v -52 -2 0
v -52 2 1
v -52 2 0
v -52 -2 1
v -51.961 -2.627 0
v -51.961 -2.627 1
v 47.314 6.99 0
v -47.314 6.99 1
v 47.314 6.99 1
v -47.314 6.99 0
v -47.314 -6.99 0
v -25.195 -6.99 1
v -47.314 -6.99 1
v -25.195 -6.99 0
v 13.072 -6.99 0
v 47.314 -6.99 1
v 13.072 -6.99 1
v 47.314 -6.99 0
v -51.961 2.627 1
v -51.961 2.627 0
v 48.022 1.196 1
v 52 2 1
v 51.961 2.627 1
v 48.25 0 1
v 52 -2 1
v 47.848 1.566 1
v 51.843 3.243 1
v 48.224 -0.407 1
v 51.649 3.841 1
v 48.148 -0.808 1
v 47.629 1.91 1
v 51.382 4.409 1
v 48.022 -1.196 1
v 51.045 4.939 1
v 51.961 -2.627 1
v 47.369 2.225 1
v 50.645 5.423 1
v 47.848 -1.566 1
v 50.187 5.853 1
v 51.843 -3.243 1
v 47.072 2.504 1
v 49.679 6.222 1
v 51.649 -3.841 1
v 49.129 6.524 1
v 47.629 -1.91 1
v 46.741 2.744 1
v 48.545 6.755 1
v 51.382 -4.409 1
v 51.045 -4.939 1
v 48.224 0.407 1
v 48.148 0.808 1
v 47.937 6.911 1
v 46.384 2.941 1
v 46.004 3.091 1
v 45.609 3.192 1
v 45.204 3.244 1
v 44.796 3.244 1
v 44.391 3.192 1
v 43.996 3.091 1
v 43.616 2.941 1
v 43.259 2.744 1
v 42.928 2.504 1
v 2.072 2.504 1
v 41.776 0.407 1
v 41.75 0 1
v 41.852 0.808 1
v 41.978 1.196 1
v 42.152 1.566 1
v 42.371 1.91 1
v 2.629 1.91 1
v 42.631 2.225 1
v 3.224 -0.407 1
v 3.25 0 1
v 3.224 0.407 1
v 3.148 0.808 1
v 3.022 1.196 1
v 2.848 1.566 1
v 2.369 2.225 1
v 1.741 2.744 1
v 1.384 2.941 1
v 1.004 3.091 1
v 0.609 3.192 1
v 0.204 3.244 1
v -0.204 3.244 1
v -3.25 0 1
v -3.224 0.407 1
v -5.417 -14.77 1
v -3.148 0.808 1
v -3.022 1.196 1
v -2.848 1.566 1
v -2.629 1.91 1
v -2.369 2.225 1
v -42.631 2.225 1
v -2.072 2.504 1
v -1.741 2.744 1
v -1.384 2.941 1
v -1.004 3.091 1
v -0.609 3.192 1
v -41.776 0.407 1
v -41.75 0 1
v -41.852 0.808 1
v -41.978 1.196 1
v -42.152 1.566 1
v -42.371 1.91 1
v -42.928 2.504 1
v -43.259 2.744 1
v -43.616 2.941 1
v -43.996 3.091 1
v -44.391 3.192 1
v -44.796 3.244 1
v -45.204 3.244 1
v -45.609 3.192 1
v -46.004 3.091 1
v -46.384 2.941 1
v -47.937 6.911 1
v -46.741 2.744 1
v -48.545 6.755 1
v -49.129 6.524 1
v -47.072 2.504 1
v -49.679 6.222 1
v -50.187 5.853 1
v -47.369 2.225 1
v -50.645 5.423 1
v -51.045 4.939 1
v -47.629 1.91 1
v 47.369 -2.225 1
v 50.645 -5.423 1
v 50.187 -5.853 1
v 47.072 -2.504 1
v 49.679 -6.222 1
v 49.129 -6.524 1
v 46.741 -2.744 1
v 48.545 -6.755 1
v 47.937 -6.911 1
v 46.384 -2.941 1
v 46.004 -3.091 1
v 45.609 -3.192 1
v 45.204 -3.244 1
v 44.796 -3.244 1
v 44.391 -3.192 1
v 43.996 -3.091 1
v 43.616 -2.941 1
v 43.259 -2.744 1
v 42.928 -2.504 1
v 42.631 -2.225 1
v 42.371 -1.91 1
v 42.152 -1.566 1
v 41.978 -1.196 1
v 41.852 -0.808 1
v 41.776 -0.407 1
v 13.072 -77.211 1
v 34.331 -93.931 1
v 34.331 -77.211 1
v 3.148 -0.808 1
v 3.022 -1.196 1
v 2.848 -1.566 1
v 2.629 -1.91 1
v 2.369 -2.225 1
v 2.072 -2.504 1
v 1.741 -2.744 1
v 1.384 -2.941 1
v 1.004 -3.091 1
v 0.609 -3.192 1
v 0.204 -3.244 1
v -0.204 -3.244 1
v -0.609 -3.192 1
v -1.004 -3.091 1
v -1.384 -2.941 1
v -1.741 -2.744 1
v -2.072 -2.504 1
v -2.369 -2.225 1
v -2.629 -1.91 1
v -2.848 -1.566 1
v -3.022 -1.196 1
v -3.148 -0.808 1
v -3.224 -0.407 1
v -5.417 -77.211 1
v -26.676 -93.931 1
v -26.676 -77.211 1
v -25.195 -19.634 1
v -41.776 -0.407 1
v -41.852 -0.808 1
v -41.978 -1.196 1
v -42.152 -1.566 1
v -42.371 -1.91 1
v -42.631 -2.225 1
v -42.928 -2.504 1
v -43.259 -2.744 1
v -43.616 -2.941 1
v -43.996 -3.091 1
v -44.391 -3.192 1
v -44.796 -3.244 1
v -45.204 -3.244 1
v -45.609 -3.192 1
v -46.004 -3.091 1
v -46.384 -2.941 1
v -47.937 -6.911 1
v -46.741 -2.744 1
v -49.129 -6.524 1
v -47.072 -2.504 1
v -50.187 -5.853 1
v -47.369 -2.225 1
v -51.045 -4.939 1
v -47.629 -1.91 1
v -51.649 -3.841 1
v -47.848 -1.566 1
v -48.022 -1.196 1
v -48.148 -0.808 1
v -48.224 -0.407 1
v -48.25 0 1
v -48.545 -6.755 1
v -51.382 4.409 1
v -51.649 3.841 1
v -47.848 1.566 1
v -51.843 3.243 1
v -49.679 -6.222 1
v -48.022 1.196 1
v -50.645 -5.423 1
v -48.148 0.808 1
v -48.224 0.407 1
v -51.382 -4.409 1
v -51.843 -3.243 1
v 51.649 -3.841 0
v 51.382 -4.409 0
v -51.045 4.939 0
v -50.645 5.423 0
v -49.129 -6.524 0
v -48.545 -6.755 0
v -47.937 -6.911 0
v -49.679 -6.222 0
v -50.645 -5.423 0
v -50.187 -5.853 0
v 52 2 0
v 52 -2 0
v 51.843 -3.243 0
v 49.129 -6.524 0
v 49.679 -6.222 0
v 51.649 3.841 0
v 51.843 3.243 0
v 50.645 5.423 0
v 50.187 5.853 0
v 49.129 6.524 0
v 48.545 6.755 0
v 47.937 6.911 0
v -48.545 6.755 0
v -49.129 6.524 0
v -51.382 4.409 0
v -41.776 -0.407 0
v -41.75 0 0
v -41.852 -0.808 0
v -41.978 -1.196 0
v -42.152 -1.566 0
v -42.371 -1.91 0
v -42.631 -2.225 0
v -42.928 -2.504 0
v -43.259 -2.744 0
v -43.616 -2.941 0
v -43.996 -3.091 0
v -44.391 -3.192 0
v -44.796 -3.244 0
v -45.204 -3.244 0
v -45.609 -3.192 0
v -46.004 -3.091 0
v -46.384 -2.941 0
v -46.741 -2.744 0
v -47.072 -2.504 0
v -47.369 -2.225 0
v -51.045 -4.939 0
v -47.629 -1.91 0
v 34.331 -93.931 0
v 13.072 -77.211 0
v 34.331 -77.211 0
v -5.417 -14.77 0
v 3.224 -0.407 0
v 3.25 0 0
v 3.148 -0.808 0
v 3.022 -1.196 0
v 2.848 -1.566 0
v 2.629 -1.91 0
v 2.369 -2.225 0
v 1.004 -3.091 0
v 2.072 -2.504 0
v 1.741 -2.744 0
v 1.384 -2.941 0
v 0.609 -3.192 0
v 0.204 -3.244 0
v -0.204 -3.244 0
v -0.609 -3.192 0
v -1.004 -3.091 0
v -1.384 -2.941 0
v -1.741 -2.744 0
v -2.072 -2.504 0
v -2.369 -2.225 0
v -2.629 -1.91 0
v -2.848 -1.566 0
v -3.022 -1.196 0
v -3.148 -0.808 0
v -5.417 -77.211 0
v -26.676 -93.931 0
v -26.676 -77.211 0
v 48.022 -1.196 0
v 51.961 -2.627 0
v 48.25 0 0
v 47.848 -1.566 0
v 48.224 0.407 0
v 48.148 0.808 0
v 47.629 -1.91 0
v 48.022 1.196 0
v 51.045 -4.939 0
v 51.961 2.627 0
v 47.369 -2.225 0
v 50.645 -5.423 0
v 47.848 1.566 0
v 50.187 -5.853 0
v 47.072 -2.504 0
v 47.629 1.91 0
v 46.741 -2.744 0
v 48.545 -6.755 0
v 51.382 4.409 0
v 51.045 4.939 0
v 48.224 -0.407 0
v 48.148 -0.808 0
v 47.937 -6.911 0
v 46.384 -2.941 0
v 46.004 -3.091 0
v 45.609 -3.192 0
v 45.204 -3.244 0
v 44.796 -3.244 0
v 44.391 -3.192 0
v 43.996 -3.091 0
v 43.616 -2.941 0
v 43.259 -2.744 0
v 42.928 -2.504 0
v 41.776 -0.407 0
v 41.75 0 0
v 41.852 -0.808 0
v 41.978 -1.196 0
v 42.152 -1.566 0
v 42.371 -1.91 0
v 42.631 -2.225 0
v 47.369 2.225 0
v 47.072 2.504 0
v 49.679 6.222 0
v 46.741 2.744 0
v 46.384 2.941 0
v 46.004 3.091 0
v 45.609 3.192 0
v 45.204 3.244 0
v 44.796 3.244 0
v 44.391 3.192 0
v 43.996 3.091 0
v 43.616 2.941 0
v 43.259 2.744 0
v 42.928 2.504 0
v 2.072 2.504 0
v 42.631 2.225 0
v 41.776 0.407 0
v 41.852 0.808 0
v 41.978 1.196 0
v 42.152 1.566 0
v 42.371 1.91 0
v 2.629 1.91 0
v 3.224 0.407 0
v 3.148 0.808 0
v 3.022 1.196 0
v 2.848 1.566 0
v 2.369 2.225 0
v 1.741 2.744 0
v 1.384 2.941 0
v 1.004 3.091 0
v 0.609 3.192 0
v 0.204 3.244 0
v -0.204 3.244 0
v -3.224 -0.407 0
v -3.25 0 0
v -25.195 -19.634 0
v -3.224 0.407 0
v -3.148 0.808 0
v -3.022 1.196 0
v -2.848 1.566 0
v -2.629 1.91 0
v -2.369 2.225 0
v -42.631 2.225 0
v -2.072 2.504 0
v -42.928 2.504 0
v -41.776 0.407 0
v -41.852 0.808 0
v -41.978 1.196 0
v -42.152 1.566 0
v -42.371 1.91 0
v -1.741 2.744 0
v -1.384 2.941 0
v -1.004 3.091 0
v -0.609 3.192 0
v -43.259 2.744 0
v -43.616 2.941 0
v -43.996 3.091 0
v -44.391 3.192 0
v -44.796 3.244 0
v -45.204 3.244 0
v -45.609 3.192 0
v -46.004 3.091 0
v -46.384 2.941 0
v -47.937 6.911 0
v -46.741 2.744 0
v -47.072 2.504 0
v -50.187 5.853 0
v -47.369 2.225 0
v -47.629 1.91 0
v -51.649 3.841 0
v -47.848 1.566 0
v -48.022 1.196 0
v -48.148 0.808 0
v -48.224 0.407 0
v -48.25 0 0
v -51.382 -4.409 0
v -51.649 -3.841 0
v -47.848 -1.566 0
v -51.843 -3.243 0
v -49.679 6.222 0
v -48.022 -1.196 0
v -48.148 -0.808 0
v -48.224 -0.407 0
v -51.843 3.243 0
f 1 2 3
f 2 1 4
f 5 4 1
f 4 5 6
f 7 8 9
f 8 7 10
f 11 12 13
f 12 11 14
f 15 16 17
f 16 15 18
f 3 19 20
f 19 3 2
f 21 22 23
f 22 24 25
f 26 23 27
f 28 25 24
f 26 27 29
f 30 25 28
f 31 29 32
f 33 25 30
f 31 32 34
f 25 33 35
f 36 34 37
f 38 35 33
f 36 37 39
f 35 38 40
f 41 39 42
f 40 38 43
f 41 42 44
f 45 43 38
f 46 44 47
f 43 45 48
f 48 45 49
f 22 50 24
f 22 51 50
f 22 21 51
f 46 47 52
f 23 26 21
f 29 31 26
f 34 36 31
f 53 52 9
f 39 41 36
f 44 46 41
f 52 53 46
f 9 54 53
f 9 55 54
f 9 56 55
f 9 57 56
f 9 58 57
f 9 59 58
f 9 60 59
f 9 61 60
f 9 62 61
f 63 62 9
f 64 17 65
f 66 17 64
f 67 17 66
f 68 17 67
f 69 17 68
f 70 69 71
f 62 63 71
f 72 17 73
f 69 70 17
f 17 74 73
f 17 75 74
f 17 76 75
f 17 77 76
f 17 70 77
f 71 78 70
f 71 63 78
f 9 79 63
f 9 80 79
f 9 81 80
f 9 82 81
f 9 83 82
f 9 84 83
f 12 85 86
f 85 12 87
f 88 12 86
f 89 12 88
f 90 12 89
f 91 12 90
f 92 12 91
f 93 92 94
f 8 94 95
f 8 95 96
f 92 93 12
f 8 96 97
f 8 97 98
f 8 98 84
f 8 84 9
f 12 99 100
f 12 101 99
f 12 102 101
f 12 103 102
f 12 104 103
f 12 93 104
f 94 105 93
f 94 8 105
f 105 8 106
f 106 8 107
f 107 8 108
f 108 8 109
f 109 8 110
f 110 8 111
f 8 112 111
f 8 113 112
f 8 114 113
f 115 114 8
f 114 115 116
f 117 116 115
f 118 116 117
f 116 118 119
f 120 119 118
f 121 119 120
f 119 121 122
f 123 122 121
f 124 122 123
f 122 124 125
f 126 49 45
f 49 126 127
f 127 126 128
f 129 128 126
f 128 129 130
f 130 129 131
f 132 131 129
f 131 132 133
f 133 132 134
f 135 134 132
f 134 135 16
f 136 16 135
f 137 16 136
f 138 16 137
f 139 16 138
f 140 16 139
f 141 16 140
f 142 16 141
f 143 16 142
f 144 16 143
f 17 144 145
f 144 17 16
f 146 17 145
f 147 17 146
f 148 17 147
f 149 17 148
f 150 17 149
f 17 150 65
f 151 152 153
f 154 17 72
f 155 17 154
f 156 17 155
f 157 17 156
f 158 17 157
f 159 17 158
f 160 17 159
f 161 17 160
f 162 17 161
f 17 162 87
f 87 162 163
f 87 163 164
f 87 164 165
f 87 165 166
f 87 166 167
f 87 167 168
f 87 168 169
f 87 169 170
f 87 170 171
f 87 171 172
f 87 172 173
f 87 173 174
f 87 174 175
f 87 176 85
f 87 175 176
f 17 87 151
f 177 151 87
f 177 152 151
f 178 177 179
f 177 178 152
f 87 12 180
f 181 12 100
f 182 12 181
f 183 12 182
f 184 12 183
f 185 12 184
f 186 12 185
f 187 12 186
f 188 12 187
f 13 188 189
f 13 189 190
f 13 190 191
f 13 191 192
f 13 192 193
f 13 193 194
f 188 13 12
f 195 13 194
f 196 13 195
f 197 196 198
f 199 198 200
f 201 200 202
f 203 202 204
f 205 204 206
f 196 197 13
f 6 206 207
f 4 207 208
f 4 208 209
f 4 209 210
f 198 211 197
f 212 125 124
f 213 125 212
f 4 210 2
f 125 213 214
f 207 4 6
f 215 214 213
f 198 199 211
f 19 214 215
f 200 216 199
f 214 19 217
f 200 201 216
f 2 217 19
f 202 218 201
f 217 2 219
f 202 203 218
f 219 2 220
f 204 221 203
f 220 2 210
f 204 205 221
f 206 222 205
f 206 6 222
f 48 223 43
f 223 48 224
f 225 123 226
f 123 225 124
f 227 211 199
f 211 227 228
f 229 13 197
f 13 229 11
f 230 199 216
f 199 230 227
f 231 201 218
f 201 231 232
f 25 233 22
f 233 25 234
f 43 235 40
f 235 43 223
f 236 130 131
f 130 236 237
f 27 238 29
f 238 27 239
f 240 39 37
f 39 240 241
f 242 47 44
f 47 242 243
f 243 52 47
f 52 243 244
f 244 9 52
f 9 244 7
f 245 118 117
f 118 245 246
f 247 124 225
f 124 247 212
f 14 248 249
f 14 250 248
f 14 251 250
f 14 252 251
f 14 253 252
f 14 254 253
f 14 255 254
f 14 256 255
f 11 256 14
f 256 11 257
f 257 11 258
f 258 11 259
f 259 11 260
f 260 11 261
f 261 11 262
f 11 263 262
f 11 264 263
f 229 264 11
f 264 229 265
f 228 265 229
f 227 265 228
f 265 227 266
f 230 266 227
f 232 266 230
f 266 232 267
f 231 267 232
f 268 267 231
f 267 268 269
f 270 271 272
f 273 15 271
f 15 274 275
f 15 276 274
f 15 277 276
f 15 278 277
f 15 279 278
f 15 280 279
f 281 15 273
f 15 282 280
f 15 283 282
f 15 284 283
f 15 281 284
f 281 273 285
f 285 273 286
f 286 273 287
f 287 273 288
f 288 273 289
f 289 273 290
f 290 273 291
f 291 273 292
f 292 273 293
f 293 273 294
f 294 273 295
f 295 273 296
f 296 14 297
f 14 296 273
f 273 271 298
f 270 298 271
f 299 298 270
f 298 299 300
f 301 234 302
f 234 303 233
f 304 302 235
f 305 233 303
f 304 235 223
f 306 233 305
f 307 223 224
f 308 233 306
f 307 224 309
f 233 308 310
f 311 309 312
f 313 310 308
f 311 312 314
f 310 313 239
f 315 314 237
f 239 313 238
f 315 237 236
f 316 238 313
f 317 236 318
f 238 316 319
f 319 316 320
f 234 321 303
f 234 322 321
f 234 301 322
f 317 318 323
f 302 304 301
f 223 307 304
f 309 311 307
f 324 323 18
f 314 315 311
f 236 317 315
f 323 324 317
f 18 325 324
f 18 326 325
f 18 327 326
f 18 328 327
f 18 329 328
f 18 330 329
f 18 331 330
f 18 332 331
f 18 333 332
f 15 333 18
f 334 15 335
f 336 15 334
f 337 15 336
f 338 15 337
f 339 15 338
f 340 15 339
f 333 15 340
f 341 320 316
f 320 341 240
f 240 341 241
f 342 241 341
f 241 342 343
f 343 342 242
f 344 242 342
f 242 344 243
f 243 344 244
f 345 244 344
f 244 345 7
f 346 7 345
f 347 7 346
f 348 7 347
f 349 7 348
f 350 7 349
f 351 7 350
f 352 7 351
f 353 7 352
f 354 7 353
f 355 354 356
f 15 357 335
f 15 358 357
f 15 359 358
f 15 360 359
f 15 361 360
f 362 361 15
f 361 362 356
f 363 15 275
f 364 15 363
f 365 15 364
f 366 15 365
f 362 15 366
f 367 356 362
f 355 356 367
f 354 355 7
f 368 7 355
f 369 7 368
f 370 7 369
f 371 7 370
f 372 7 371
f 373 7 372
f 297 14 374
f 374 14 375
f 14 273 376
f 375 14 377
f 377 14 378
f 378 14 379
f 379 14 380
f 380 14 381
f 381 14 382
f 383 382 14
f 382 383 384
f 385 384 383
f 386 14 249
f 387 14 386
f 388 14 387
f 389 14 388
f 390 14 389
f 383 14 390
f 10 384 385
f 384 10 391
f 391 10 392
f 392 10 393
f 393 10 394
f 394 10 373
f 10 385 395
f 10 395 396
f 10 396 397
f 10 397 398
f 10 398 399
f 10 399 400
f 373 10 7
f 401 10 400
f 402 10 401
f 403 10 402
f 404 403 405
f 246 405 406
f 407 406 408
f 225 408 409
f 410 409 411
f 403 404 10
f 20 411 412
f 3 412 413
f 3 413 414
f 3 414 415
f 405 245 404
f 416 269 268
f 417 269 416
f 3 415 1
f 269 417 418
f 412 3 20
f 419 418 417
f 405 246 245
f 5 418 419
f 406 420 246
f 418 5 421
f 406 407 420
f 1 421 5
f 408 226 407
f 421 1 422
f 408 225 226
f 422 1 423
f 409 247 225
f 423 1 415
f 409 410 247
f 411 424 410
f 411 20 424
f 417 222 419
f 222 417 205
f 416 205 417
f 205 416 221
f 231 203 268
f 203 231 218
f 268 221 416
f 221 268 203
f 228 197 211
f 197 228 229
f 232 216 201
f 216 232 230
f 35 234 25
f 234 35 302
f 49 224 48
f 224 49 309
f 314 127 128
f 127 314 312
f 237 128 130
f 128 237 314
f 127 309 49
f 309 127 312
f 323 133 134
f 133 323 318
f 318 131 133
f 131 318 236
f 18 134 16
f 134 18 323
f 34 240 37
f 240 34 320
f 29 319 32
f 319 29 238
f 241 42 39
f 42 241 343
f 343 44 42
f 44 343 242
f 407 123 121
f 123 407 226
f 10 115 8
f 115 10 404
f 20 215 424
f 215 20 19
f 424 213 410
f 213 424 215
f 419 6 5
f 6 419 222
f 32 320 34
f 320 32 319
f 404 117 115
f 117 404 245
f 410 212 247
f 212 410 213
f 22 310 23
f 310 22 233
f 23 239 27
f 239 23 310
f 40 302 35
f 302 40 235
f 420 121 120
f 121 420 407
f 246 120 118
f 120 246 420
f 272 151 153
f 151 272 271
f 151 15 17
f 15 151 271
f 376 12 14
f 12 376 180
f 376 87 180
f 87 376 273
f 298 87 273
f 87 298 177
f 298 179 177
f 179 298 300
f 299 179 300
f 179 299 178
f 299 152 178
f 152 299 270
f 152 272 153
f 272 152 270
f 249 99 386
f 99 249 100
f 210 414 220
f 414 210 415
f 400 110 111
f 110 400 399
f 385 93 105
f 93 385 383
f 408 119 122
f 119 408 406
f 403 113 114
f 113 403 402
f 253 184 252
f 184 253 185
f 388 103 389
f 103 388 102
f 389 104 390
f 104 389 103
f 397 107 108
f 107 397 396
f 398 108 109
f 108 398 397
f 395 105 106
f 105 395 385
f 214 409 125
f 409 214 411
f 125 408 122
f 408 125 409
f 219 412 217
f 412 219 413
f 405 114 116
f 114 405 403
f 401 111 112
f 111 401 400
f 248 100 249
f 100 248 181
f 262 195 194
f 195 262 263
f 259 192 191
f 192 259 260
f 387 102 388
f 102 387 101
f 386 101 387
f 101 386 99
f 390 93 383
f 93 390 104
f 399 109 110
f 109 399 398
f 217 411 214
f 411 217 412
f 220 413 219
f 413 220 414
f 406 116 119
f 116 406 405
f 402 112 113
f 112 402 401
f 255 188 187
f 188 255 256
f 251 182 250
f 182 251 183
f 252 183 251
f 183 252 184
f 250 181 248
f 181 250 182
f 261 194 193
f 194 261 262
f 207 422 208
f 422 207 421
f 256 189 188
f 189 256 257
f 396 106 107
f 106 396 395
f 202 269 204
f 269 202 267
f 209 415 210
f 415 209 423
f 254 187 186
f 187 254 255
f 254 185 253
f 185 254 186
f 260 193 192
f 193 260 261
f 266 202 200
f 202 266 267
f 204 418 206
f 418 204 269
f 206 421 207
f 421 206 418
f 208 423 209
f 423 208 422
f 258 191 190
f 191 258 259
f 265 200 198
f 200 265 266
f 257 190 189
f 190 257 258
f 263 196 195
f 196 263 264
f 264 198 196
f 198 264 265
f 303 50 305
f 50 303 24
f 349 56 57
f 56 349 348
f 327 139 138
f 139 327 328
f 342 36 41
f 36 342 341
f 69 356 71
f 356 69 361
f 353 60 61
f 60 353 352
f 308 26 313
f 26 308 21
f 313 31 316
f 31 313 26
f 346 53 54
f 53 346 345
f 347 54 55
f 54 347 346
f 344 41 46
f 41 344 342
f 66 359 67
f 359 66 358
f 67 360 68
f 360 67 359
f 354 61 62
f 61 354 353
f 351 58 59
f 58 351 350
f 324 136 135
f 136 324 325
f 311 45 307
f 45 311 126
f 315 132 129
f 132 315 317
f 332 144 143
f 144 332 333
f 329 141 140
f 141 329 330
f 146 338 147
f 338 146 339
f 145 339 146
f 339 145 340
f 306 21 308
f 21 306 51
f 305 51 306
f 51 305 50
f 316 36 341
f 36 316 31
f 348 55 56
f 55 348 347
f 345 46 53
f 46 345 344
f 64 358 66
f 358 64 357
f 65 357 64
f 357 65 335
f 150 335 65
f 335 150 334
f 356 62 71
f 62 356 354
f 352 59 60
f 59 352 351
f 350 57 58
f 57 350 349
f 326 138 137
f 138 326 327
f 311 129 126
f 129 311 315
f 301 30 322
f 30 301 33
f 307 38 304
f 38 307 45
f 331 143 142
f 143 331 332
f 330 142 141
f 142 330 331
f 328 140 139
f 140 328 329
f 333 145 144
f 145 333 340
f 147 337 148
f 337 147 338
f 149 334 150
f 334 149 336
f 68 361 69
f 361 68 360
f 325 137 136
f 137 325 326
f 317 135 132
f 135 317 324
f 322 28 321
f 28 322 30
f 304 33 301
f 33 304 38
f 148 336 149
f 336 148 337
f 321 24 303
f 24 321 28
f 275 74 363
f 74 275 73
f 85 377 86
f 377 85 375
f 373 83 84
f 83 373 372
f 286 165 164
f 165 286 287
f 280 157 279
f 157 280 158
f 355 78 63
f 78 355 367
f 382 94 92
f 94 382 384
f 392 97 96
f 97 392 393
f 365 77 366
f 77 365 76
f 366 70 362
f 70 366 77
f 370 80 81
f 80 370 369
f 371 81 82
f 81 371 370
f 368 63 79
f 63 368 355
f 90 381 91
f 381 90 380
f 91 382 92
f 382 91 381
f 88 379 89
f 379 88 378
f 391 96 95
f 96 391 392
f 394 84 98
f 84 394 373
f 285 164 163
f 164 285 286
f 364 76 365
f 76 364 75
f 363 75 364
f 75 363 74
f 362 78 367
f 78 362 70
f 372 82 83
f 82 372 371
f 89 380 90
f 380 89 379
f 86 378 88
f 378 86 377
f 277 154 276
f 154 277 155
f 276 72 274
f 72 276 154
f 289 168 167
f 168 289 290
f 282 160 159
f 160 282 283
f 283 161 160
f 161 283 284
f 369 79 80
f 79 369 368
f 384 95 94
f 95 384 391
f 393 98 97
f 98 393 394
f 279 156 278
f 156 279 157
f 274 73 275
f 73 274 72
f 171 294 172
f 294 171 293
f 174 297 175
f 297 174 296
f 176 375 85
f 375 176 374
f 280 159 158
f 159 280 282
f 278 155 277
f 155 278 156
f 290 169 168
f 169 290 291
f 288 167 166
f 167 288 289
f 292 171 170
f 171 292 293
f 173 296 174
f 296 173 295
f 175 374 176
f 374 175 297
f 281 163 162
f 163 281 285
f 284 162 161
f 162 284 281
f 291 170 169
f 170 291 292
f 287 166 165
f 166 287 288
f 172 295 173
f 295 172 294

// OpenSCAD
$fn = 50;


difference() {
	union() {
		translate(v = [0, 0, 0]) {
			rotate(a = [0, 0, 0]) {
				hull() {
					translate(v = [-47.0000000000, 2.0000000000, 0]) {
						rotate(a = [0, 0, 0]) {
							translate(v = [0, 0, 0]) {
								rotate(a = [0, 0, 0]) {
									cylinder(h = 1, r = 5);
								}
							}
						}
					}
					translate(v = [47.0000000000, 2.0000000000, 0]) {
						rotate(a = [0, 0, 0]) {
							translate(v = [0, 0, 0]) {
								rotate(a = [0, 0, 0]) {
									cylinder(h = 1, r = 5);
								}
							}
						}
					}
					translate(v = [-47.0000000000, -2.0000000000, 0]) {
						rotate(a = [0, 0, 0]) {
							translate(v = [0, 0, 0]) {
								rotate(a = [0, 0, 0]) {
									cylinder(h = 1, r = 5);
								}
							}
						}
					}
					translate(v = [47.0000000000, -2.0000000000, 0]) {
						rotate(a = [0, 0, 0]) {
							translate(v = [0, 0, 0]) {
								rotate(a = [0, 0, 0]) {
									cylinder(h = 1, r = 5);
								}
							}
						}
					}
				}
			}
		}
		translate(v = [0, 0, 0]) {
			rotate(a = [0, 0, 0]) {
				linear_extrude(height = 1) {
					text(font = "DejaVu Sans Mono:style=Bold", halign = "center", size = 95, text = "1", valign = "top");
				}
			}
		}
	}
	union() {
		translate(v = [-45.0000000000, 0.0000000000, -125.0000000000]) {
			rotate(a = [0, 0, 0]) {
				cylinder(h = 250, r = 3.2500000000);
			}
		}
		translate(v = [45.0000000000, 0.0000000000, -125.0000000000]) {
			rotate(a = [0, 0, 0]) {
				cylinder(h = 250, r = 3.2500000000);
			}
		}
		translate(v = [45.0000000000, 0.0000000000, -125.0000000000]) {
			rotate(a = [0, 0, 0]) {
				cylinder(h = 250, r = 3.2500000000);
			}
		}
		translate(v = [0, 0, -125.0000000000]) {
			rotate(a = [0, 0, 0]) {
				cylinder(h = 250, r = 3.2500000000);
			}
		}
	}
}
